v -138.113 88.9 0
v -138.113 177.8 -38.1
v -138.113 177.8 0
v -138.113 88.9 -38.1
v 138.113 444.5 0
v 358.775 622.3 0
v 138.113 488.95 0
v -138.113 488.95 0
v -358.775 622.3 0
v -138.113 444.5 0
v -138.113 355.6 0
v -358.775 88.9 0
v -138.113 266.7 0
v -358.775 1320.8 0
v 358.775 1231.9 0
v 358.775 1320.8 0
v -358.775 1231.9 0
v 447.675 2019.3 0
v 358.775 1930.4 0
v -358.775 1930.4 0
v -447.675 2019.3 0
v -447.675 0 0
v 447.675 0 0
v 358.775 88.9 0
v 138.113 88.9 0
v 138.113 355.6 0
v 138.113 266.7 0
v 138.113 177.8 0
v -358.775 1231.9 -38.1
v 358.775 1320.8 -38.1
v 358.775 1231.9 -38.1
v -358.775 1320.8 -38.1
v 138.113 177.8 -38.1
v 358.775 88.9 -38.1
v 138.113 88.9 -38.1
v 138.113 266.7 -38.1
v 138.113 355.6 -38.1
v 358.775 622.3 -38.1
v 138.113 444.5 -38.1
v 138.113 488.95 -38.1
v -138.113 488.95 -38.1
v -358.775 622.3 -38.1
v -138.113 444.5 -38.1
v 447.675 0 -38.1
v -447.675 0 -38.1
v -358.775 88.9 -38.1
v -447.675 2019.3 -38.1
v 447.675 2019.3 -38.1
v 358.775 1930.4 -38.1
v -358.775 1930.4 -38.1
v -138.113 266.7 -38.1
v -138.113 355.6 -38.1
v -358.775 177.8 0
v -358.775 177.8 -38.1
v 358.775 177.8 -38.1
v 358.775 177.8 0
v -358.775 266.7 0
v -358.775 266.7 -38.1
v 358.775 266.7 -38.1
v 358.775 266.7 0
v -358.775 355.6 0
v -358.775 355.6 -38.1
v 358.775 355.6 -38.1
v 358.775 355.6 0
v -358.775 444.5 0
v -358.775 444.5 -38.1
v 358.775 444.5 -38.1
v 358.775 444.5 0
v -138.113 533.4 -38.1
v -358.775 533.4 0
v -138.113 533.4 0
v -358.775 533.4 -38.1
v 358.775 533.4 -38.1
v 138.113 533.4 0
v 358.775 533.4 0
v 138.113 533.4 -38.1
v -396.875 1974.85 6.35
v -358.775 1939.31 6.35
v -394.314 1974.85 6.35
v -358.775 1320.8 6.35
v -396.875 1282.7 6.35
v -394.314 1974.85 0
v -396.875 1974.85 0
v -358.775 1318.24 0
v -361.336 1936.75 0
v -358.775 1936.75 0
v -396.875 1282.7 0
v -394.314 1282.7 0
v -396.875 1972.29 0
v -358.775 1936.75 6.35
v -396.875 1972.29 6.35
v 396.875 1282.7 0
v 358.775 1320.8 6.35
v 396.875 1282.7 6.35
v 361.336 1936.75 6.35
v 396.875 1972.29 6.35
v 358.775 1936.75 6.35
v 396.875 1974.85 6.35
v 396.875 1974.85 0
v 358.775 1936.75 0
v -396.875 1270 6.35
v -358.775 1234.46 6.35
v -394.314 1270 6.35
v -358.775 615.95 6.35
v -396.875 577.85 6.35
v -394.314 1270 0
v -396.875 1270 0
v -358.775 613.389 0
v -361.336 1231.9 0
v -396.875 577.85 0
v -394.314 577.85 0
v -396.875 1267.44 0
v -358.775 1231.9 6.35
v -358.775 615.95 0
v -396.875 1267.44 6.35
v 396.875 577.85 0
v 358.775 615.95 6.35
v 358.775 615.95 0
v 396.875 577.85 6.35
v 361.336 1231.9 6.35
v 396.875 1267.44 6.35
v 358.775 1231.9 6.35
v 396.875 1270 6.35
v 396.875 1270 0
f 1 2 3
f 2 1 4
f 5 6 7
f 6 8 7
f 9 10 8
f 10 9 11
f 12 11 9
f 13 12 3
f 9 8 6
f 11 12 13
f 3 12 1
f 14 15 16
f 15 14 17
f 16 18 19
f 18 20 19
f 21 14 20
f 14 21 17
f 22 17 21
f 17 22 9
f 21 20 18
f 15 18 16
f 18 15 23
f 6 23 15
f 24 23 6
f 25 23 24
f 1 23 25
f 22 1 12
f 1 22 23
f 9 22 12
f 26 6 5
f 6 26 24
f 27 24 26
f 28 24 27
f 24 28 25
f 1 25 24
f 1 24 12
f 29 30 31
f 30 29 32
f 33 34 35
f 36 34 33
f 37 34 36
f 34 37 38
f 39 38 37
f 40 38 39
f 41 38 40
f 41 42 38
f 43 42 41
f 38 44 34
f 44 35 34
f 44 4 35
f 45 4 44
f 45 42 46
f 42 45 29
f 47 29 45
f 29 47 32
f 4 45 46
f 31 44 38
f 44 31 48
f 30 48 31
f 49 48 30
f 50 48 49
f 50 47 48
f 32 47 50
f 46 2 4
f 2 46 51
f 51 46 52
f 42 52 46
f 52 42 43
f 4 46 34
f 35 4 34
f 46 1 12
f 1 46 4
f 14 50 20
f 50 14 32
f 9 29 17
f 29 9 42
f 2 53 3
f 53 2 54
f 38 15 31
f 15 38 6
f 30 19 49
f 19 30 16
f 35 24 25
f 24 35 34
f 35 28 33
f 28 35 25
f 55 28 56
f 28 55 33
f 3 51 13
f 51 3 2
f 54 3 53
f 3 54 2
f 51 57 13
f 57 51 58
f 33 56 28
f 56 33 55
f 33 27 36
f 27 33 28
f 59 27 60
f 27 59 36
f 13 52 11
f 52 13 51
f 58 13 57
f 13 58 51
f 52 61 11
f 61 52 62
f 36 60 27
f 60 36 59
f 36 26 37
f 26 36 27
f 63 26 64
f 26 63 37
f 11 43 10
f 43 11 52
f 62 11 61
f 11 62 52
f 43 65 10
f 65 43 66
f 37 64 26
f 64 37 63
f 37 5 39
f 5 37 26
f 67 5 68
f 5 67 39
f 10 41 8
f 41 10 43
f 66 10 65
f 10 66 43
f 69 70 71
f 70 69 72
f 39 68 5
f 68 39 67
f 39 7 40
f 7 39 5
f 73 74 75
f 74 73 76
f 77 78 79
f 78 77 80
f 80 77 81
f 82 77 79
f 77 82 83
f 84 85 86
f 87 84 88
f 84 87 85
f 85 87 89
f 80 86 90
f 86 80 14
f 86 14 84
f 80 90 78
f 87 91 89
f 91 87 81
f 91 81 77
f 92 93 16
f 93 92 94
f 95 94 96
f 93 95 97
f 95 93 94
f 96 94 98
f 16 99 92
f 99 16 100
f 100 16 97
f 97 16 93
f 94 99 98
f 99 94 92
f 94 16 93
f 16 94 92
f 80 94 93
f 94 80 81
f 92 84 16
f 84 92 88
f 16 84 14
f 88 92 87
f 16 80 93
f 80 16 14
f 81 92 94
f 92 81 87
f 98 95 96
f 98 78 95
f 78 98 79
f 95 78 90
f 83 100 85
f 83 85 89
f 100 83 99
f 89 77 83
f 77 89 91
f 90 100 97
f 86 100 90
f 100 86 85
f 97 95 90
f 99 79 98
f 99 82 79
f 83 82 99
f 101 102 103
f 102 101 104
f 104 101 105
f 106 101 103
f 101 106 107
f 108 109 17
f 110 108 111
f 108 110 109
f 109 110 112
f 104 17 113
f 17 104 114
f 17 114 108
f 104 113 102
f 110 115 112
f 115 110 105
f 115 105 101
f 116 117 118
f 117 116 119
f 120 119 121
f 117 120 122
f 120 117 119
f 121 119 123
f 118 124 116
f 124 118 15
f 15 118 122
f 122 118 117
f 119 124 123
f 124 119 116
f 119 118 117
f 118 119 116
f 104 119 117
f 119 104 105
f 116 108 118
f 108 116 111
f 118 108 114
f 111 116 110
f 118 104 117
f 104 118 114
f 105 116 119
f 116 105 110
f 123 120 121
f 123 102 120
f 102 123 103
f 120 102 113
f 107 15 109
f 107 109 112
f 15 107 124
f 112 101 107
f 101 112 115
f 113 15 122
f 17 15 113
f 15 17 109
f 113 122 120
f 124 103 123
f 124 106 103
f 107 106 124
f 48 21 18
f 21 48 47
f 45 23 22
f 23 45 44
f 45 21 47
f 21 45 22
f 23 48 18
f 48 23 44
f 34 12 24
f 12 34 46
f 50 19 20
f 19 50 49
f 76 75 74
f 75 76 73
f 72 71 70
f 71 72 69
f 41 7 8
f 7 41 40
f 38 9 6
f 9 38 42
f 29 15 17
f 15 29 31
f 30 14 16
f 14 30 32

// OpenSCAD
// Design based on
// https://www.youtube.com/watch?v=DhXJiUuMlwY
// Using Door: Severe Weather 2-in X 4-in x 8-ft Prime Treated Lumber (Common) 1.5-in x 3.5-in x 8-ft (Actual)
// Using Screen: Severe Weather (Common: 1-in X 6-in x 6-ft; Actual: 0.75-in x 5.5-in x 6-ft) Ecolife Treated Lumber


inch = 25.4;  // 25.4 mm to inch
// door Wood Type
wood_thickness = 1.5 * inch;
wood_width     = 3.5 * inch;

screen_wood_thickness = .25 * inch;
screen_wood_width     = 1.5 * inch;

// Parameters for size
door_height = 80 * inch;
door_width  = 35.5 * inch;
actual_height = door_height - (.5 * inch);
actual_width  = door_width - (.25 * inch);
crosspiece_length = actual_width - (2 * wood_width);

dog_door_height = 15.75 * inch;
dog_door_width =  10.875 * inch;
door_half_height = (actual_height - 9 * wood_width + .5 * inch);
cut_number = 0;

screen_width = actual_width - (2 * wood_width) ;
screen_height = actual_height - door_half_height - (1 * wood_width) - screen_wood_thickness;

module dog_door()
{
    cube([wood_thickness,dog_door_width,dog_door_height]);
    
}

module twobyfour(thetype, thelength)
{
    cut_number = cut_number + 1;
    cube([wood_thickness,wood_width,thelength]);
    echo(thetype,thelength);
}

module ptwofivebyonepfive(thetype, thelength)
{
    cut_number = cut_number + 1;
    cube([screen_wood_thickness,screen_wood_width,thelength]);
    echo(thetype,thelength);
}

module miter_ptwofivebyonepfive(thetype,thelength,mdir)
{
   
    difference(){
       ptwofivebyonepfive(thetype,thelength);
       if (mdir == -1){
           translate([0,0,-19.05]) rotate([-45*mdir,0,0]) translate([-.2,0,-100]) cube([screen_wood_thickness+.5,screen_wood_width+.5,thelength+.5]);
           translate([0,0,thelength+19.05]) rotate([45*mdir,0,0]) translate([-.2,0,-100]) cube([screen_wood_thickness+.5,screen_wood_width+.5,thelength+.5]);
          } else {
          translate([0,0,0]) rotate([-45*mdir,0,0]) translate([-.2,0,-100]) cube([screen_wood_thickness+.5,screen_wood_width+.5,thelength+.5]);
          translate([0,0,thelength]) rotate([45*mdir,0,0]) translate([-.2,0,-100]) cube([screen_wood_thickness+.5,screen_wood_width+.5,thelength+.5]);    
          }
       }
}

module twobyfourX1p75(thetype, thelength)
{
    cut_number = cut_number + 1;
    cube([wood_thickness,1.75*inch,thelength]);
    echo(thetype,thelength);
}


module dog_cross()
{
    xpos = actual_width  / 2;
    dogdoor_cross = (crosspiece_length - dog_door_width) / 2;
    dogdoor2_xpos = 0 - xpos + dogdoor_cross + dog_door_width;
    translate([0-xpos+wood_width,0,0]) rotate([0,90,0]) twobyfour("B2",dogdoor_cross);
    translate([0-xpos+wood_width+dogdoor_cross+dog_door_width,0,0]) rotate([0,90,0]) twobyfour("B2",dogdoor_cross);
}

module screen_frame()
{
    xpos = screen_width / 2;
    translate([0-xpos,0,0]) rotate([0,90,90]) miter_ptwofivebyonepfive("F1",screen_height,-1);
    translate([xpos+screen_wood_width,0,0]) rotate([0,90,90]) miter_ptwofivebyonepfive("F1",screen_height,1);
    
    translate([0-xpos-screen_wood_width,0,0]) rotate([0,90,0]) miter_ptwofivebyonepfive("F2",screen_width+(2*screen_wood_width),+1);
    translate([0-xpos-screen_wood_width,0+screen_height-screen_wood_width,0]) rotate([0,90,0]) miter_ptwofivebyonepfive("F2",screen_width+(2 * screen_wood_width),-1);
}

module door()
{
    xpos = actual_width  / 2;
    translate([0-xpos+wood_width,0]) rotate([0,90,90]) twobyfour("S1",actual_height);
    translate([xpos,0,0])   rotate([0,90,90]) twobyfour("S1",actual_height);
    translate([0-xpos+wood_width,0,0]) rotate([0,90,0]) twobyfour("B1",crosspiece_length);
    translate([0-xpos+wood_width,actual_height - wood_width,0]) rotate([0,90,0]) twobyfour("B1",crosspiece_length);
    
    
    translate([0,1 * wood_width,0]) dog_cross();
    translate([0,2 * wood_width,0]) dog_cross();
    translate([0,3 * wood_width,0]) dog_cross();
    translate([0,4 * wood_width,0]) dog_cross();
    translate([0,5 * wood_width,0]) dog_cross();
     translate([0+(dog_door_width/2),wood_width*5+1.75*inch,0-wood_thickness]) rotate([0,-90,0]) twobyfourX1p75("X1",dog_door_width);
    %translate([0+(dog_door_width/2),wood_width,0]) rotate([0,90,90]) dog_door();
    translate([0-xpos+wood_width,6 * wood_width,0]) rotate([0,90,0]) twobyfour("B1",crosspiece_length); 
    translate([0-xpos+wood_width,door_half_height,0]) rotate([0,90,0]) twobyfour("B1",crosspiece_length);
    
    
    //%translate([0-xpos+wood_width-screen_wood_width/2,door_half_height-screen_wood_width+wood_width ,0-wood_thickness+20]) cube([screen_width,screen_height,wood_thickness]);
    
    //%translate([0-xpos+wood_width-screen_wood_width/2,door_half_height-screen_wood_width+wood_width - (8 * wood_width) ,0-wood_thickness+20]) cube([screen_width,screen_height,wood_thickness]);
    
    translate([0,door_half_height-screen_wood_width+wood_width,screen_wood_thickness]) screen_frame();
    translate([0,6.5 * wood_width,screen_wood_thickness]) screen_frame();
    
}

door();
